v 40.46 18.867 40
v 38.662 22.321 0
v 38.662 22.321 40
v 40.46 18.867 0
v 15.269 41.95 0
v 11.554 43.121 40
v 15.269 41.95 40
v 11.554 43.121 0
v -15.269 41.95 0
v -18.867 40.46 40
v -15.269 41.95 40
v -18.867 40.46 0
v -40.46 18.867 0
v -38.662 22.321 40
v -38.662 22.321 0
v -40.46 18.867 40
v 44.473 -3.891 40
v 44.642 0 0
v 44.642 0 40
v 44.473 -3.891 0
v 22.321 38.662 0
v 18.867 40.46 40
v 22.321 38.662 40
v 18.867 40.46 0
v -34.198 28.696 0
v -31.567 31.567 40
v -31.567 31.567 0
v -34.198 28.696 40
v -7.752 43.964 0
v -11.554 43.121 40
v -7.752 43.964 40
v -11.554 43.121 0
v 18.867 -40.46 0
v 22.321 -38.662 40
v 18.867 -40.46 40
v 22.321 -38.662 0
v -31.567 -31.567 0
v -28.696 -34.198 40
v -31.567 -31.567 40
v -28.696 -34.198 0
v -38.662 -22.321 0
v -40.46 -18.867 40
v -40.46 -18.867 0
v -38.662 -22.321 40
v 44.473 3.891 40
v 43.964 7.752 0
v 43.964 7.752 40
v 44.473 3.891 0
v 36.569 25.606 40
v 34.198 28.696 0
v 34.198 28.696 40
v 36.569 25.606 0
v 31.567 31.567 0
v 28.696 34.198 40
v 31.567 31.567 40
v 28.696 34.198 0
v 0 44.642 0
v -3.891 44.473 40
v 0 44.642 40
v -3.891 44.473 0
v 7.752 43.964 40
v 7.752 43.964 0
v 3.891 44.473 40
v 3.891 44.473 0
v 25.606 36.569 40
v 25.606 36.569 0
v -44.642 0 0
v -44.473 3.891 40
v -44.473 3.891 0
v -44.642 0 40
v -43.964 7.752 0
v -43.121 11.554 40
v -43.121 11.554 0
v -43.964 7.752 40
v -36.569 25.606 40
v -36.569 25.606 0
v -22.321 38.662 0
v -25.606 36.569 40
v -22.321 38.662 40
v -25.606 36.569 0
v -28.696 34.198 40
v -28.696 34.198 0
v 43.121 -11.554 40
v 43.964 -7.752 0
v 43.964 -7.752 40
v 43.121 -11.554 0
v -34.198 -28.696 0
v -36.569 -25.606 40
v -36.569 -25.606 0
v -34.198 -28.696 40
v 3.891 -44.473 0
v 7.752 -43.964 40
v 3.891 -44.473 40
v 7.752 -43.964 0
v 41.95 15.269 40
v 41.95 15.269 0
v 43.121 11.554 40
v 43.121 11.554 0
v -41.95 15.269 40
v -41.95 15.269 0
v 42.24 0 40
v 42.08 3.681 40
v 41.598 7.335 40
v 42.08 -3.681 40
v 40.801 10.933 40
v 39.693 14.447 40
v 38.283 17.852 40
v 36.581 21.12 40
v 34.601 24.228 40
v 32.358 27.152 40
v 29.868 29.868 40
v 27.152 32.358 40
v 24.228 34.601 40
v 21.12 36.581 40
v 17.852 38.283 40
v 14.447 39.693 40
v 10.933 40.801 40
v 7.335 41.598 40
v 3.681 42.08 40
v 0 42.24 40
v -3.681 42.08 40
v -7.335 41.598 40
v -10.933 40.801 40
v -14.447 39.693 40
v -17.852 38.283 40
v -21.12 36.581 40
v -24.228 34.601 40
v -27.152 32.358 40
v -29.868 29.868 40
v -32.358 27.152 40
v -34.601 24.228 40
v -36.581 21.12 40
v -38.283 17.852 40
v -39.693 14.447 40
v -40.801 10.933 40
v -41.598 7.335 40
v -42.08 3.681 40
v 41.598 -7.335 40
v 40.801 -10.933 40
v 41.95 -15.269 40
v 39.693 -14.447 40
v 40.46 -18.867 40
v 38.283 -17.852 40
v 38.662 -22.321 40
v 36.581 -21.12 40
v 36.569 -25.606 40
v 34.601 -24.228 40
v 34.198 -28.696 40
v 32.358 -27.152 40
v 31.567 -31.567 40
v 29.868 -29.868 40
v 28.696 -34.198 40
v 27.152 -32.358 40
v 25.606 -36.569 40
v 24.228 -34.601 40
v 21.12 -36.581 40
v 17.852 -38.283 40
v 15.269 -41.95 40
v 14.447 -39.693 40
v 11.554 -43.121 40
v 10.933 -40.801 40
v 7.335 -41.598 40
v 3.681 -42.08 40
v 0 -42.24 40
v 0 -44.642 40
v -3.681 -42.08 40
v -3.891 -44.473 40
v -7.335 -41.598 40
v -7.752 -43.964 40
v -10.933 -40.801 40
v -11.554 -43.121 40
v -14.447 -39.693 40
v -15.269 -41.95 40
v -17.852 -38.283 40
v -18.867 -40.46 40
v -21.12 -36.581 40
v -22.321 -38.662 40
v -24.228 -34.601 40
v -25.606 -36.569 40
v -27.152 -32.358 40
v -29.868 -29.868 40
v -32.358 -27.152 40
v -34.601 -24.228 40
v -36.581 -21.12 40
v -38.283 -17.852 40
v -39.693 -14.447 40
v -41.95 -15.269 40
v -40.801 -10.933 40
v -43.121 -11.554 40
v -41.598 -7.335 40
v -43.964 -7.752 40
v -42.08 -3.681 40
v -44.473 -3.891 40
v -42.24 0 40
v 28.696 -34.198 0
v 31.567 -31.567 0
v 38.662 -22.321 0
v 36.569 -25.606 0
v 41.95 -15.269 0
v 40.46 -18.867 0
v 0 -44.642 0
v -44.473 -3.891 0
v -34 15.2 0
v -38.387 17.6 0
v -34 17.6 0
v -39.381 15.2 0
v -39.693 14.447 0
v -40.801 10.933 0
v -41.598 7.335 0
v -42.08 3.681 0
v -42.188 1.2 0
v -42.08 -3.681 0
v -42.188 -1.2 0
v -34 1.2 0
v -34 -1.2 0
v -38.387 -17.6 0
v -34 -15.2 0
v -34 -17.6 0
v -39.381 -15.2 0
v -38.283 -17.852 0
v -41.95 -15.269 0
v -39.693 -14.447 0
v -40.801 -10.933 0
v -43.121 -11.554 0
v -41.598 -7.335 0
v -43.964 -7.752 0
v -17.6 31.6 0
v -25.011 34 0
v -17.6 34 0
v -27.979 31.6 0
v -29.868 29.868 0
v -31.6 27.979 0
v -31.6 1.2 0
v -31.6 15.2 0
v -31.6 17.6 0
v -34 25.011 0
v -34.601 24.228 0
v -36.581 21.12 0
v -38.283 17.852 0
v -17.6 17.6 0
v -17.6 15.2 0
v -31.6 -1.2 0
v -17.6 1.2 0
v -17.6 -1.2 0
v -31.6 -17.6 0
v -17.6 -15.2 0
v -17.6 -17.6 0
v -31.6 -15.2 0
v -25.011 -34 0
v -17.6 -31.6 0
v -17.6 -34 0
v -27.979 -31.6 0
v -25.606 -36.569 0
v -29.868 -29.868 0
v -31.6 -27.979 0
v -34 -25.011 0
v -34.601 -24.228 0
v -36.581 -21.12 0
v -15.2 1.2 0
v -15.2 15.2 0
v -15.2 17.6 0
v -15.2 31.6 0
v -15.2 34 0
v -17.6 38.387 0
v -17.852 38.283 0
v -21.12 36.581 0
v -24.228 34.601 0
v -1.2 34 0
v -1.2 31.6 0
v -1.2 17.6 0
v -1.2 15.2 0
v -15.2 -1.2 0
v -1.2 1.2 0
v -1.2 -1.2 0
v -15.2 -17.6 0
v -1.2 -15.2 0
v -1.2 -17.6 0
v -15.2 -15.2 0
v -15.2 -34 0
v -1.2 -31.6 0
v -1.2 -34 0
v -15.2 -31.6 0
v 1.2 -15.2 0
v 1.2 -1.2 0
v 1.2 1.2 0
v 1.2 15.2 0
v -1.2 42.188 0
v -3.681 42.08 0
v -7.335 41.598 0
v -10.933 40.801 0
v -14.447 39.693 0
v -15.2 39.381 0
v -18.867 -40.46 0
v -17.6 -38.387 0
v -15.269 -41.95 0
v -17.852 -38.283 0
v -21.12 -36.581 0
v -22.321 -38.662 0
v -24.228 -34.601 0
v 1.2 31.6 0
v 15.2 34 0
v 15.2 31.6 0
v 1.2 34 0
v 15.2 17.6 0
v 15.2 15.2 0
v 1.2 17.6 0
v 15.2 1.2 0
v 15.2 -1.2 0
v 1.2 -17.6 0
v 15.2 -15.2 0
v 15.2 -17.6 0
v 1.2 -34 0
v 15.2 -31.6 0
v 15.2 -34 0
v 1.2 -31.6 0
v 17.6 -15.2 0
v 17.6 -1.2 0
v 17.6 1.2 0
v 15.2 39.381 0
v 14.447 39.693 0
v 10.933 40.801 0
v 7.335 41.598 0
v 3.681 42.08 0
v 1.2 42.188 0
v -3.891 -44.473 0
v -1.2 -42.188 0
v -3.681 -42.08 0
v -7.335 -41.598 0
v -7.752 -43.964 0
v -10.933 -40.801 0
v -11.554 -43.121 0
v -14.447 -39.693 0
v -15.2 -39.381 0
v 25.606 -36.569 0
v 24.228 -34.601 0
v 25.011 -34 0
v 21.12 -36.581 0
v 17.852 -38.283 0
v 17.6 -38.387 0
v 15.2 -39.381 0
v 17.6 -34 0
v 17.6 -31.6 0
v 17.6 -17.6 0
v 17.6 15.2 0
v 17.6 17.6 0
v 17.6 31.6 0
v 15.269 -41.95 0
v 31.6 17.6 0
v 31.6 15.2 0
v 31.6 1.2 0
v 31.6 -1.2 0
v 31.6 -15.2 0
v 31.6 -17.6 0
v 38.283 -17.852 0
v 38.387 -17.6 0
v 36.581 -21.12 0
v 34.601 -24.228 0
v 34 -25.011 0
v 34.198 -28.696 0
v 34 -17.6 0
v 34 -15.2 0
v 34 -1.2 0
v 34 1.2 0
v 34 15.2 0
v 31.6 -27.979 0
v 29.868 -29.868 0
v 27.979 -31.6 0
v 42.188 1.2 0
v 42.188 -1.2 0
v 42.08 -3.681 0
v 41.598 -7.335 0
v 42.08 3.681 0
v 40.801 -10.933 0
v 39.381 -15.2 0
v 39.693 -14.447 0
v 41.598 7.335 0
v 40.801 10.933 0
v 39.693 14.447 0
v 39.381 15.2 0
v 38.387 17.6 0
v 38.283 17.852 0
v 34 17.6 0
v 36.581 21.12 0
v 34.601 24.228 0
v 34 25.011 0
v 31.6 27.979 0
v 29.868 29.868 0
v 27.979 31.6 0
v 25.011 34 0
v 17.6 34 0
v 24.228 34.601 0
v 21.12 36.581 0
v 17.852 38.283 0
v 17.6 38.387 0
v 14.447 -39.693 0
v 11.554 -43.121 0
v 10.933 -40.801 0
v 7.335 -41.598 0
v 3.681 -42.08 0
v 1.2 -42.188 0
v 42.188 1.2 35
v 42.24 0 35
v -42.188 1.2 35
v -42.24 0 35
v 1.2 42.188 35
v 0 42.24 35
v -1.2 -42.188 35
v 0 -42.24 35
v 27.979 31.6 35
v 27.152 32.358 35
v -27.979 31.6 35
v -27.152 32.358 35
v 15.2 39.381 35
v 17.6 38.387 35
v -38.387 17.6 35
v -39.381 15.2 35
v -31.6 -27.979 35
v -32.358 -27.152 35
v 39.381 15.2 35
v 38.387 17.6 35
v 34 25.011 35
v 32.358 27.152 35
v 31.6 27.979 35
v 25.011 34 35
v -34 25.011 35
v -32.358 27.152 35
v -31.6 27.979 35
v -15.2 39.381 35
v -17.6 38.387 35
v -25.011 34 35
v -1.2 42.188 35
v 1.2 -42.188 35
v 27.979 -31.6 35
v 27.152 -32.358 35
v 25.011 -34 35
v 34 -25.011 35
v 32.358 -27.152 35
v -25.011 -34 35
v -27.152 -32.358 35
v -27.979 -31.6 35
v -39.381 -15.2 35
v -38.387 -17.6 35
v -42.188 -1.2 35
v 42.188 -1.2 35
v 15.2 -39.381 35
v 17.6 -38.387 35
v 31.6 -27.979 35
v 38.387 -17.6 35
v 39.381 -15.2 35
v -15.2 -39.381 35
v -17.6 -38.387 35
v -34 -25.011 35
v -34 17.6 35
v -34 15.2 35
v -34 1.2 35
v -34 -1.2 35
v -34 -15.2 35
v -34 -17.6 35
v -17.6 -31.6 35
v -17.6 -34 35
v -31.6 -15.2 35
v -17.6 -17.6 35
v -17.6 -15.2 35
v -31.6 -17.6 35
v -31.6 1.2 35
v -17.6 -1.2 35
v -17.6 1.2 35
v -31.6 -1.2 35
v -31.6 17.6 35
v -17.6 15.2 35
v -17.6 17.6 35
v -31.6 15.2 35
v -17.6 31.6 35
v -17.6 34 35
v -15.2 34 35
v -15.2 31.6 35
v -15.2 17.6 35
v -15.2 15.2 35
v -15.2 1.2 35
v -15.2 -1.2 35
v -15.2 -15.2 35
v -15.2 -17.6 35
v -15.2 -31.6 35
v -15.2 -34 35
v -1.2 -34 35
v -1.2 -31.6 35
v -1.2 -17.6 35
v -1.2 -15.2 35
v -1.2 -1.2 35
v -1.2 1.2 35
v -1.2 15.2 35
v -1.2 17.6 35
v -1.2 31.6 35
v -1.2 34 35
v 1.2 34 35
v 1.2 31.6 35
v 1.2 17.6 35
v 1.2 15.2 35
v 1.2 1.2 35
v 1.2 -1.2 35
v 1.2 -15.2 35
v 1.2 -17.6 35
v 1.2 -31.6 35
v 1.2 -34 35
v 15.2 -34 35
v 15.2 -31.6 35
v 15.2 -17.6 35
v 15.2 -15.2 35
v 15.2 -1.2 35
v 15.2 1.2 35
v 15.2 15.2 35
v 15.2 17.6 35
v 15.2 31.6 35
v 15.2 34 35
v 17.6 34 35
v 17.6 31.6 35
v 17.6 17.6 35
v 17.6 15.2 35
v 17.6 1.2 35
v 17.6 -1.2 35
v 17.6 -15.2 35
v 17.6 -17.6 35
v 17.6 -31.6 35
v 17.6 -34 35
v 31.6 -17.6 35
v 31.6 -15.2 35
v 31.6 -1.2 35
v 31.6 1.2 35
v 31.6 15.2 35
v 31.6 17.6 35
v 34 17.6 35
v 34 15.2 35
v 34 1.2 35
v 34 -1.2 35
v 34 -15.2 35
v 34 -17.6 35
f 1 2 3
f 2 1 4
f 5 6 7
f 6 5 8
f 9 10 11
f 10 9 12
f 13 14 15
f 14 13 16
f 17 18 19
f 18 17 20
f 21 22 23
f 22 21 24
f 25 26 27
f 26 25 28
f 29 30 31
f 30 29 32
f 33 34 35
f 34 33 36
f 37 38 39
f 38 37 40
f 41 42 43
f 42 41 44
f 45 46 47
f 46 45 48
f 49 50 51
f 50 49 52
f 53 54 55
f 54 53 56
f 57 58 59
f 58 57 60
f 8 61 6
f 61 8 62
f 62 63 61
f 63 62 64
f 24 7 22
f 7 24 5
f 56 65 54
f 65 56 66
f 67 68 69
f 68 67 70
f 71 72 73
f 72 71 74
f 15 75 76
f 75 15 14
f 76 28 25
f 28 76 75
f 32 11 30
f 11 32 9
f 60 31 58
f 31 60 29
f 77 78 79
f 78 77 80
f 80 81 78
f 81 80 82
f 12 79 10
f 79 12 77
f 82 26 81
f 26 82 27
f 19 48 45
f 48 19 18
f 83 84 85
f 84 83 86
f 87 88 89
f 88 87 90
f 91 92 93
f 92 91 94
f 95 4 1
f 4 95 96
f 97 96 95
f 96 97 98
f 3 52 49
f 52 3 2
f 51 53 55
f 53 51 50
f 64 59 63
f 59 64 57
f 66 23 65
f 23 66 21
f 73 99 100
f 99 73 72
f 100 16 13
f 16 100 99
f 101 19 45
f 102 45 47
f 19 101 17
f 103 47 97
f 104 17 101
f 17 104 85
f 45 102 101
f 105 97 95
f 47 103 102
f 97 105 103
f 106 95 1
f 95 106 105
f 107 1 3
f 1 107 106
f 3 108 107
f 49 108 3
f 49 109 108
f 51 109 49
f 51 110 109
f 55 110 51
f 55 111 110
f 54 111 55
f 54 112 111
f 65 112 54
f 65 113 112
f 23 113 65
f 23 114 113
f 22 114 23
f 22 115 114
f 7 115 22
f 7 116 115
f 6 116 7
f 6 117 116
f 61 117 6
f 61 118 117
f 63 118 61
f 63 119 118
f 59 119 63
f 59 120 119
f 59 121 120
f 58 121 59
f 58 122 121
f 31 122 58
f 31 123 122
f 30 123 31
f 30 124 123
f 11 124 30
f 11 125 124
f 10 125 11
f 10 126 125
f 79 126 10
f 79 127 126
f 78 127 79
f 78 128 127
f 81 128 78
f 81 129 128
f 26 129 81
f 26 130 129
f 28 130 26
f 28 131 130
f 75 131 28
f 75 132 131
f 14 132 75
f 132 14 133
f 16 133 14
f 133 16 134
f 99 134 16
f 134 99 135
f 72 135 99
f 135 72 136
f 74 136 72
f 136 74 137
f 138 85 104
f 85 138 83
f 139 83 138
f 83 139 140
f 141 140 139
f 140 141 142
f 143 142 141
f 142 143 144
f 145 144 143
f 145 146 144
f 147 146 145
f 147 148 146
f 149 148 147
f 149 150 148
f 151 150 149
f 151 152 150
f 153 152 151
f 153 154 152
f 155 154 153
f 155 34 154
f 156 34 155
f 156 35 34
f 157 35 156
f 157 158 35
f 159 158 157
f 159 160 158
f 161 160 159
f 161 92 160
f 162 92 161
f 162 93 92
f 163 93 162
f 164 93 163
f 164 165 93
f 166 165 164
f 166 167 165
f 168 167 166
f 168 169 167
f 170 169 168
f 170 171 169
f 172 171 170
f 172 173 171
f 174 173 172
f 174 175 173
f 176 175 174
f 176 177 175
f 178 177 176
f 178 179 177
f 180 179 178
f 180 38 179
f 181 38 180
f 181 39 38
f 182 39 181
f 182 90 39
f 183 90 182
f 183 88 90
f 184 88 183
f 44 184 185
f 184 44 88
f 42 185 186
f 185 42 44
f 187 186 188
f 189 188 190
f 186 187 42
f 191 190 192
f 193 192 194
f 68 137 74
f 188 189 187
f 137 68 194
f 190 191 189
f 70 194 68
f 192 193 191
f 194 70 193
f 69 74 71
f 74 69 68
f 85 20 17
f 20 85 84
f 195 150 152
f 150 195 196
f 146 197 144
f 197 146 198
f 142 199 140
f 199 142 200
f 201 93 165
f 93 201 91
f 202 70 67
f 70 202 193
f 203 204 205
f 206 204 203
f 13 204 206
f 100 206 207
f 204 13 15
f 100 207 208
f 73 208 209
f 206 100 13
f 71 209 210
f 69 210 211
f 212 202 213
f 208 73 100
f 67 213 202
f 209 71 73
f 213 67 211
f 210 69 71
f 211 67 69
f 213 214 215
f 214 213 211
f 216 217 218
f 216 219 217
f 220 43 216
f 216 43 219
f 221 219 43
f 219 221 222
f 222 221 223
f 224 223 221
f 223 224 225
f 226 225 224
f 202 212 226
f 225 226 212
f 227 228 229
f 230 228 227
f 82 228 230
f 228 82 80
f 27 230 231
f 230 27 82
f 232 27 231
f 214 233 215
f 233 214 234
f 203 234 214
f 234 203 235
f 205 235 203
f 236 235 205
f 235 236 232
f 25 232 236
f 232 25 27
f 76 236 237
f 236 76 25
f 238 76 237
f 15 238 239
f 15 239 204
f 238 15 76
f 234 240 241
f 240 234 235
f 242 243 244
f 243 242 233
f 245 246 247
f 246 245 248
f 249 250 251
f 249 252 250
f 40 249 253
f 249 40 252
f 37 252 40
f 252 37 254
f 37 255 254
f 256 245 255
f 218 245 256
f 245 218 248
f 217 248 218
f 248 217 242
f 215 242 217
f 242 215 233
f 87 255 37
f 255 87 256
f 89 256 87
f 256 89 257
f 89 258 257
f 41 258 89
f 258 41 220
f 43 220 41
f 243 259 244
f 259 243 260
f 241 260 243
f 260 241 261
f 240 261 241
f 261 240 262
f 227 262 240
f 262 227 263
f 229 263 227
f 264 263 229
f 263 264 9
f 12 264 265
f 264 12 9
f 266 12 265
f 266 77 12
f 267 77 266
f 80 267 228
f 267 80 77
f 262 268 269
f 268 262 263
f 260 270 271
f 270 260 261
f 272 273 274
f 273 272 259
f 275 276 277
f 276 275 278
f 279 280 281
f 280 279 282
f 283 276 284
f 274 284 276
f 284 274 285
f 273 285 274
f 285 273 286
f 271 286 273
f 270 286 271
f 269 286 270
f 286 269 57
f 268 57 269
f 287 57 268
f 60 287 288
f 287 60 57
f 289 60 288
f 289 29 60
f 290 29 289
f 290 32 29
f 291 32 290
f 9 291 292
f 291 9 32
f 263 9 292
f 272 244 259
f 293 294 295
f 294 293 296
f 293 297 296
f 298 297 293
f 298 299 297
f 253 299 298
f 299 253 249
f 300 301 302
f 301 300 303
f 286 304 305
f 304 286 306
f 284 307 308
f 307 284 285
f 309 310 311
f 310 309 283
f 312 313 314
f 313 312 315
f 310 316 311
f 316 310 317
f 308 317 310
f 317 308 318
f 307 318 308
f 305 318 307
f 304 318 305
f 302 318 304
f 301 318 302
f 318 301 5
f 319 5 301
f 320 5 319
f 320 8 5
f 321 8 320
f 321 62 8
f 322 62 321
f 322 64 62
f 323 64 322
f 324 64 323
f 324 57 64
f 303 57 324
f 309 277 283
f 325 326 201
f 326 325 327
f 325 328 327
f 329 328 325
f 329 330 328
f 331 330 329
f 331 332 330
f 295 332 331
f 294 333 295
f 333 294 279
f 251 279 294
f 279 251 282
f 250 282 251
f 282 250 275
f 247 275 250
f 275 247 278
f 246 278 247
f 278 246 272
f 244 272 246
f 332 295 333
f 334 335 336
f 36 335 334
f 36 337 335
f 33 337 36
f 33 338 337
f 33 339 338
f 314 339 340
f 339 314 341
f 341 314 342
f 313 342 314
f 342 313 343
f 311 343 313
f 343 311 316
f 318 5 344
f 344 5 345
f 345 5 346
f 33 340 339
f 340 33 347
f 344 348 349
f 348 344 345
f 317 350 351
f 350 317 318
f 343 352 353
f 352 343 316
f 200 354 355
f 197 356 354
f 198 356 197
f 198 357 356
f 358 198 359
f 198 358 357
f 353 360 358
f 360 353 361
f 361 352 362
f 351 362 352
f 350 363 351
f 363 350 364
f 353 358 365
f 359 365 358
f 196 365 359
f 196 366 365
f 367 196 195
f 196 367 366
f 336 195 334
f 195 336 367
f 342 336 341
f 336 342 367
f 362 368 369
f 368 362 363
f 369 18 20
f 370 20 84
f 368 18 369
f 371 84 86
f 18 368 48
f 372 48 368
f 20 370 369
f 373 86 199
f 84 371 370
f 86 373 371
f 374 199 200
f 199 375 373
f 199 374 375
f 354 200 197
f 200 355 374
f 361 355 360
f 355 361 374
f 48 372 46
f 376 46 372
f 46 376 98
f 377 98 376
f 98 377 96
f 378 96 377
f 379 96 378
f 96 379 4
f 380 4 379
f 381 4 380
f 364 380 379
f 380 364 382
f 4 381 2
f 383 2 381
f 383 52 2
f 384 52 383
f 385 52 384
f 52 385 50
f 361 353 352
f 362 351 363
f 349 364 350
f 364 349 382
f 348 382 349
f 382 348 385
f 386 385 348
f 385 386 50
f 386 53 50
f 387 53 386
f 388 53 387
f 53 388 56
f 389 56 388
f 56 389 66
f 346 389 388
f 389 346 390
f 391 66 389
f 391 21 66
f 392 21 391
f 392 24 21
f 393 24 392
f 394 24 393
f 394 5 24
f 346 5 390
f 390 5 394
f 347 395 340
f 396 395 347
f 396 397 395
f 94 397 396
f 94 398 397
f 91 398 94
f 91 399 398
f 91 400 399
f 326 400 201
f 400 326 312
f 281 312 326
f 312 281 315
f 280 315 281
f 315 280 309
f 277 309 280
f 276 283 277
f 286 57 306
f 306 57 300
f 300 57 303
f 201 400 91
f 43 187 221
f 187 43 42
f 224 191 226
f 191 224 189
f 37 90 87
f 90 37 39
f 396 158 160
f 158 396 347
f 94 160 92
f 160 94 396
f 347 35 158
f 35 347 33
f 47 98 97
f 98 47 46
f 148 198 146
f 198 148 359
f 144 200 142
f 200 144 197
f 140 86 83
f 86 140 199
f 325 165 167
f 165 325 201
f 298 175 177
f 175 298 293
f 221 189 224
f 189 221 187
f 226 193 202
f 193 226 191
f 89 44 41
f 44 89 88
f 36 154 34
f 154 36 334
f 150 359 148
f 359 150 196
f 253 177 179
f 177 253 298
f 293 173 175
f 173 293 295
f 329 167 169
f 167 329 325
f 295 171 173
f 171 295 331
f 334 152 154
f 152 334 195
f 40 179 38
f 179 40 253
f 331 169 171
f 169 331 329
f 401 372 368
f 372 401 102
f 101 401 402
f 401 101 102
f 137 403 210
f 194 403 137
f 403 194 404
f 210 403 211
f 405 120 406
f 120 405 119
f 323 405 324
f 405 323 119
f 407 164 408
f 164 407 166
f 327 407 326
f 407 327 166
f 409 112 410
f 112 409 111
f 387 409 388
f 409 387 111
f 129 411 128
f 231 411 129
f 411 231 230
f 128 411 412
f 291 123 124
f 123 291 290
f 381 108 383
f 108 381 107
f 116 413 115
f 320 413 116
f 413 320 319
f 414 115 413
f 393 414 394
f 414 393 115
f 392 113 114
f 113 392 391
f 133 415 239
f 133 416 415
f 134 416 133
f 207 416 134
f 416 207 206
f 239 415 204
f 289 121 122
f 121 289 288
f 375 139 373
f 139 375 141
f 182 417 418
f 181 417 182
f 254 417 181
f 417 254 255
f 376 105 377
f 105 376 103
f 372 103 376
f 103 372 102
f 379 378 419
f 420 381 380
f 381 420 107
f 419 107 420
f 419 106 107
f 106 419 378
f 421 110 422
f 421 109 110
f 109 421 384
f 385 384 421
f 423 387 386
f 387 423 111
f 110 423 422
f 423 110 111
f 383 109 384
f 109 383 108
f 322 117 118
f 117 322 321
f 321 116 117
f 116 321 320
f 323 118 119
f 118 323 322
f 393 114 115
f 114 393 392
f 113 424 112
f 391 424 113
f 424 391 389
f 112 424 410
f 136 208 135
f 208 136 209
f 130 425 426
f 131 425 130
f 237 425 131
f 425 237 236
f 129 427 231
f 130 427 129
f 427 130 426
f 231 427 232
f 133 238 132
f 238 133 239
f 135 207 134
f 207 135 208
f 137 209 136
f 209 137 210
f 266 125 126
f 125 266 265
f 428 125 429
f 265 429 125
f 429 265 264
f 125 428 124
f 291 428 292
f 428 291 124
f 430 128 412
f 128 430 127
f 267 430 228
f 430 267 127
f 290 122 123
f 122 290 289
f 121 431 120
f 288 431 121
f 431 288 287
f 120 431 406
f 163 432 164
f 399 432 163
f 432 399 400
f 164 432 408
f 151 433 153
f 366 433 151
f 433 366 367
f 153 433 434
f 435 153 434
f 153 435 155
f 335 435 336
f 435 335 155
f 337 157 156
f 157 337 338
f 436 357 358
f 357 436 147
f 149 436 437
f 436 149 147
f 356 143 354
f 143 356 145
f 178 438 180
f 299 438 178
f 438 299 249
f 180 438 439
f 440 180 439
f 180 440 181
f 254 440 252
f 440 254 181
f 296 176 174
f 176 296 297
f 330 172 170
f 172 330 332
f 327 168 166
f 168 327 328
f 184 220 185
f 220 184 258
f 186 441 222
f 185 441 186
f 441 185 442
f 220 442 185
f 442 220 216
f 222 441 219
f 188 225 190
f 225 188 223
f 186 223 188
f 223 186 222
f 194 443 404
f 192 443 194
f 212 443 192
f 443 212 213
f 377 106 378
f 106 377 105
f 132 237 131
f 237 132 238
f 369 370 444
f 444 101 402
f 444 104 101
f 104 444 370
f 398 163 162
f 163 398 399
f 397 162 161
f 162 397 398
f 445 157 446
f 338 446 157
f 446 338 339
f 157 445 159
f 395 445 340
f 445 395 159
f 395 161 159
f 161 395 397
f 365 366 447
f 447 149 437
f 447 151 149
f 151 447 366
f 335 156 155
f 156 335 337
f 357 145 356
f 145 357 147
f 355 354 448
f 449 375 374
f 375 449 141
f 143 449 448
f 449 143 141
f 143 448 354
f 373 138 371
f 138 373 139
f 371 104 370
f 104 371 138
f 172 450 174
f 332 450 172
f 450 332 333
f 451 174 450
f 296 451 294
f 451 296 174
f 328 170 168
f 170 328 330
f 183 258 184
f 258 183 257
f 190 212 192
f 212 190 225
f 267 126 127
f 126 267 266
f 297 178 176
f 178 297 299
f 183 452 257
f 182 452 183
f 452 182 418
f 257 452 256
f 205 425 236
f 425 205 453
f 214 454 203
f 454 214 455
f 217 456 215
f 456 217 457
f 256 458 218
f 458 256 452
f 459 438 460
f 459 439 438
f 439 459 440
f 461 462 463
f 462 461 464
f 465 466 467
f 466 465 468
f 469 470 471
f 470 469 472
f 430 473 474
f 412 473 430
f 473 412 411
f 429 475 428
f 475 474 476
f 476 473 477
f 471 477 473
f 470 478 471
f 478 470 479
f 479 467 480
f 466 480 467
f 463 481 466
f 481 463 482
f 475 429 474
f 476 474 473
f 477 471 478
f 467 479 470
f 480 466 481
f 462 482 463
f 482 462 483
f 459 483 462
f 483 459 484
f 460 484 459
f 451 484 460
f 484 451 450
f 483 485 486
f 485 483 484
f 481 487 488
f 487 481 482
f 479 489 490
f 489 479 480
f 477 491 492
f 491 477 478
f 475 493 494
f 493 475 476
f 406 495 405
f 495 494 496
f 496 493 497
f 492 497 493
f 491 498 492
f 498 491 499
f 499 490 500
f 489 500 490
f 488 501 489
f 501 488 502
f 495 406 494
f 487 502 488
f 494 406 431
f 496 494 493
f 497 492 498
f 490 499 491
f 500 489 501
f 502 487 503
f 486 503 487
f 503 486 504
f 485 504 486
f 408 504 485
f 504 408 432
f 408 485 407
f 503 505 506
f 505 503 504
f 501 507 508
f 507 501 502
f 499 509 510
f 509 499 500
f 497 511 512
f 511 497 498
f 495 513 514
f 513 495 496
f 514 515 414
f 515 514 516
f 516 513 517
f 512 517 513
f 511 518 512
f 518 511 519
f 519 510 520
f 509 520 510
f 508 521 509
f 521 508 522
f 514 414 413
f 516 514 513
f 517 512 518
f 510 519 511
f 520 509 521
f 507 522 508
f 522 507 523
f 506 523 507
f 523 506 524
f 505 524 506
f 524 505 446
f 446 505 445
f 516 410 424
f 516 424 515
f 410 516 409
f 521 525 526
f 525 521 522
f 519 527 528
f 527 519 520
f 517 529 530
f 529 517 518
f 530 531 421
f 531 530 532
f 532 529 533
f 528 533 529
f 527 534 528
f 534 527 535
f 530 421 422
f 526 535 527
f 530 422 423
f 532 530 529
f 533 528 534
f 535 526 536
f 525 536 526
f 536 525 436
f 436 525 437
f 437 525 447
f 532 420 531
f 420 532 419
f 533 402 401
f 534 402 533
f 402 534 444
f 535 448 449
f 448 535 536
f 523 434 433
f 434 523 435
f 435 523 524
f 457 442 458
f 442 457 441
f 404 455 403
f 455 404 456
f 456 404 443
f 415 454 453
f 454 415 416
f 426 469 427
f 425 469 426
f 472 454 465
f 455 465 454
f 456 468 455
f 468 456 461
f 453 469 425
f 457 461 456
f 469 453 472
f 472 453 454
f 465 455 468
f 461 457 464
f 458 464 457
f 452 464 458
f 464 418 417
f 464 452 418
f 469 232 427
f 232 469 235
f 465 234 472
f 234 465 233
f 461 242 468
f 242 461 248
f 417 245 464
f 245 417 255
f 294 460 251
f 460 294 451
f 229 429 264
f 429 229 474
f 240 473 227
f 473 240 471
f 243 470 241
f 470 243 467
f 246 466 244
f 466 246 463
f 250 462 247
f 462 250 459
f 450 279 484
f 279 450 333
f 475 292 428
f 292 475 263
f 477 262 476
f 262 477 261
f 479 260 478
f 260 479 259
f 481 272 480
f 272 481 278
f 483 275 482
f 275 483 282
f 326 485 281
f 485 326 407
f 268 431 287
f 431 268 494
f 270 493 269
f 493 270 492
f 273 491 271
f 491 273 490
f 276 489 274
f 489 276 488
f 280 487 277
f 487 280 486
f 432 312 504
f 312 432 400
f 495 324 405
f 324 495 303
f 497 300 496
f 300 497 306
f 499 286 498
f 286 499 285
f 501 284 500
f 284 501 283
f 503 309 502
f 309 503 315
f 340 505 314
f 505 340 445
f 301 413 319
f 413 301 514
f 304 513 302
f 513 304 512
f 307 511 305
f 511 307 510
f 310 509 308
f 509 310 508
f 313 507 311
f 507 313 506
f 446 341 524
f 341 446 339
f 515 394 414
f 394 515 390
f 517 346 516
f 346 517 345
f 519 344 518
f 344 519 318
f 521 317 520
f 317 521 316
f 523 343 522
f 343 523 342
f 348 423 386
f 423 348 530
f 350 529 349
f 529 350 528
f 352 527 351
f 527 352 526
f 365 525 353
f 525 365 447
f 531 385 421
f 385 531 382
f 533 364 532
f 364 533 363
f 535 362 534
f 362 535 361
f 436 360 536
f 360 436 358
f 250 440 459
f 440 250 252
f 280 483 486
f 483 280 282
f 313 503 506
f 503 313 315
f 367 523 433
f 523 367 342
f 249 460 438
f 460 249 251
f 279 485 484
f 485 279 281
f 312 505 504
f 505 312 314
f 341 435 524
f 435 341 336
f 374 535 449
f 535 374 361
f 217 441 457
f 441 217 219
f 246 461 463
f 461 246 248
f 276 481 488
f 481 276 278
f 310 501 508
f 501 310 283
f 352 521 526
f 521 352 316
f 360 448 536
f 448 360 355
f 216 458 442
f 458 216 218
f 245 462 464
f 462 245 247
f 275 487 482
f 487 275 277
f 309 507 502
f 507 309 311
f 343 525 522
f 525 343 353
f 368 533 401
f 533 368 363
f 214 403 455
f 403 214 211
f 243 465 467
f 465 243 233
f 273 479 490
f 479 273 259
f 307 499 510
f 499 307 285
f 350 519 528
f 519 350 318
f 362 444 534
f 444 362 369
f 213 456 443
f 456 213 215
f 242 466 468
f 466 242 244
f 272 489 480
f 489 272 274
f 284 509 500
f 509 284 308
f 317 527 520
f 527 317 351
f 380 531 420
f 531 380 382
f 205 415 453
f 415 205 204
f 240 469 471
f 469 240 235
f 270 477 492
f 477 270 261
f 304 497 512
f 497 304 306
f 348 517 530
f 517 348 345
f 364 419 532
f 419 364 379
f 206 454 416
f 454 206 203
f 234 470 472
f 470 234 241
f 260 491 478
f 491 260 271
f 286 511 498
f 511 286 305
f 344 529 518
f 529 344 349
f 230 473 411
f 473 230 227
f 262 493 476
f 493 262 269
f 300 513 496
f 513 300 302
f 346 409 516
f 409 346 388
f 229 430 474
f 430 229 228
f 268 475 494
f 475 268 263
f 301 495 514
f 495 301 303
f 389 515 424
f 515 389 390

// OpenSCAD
// file: grid.scad
module Grid(size=[100, 100, 10], pitch_x=11.2, pitch_y=11.2, thickness_x=1.2, thickness_y=1.2) {
    xs = size.x / pitch_x;
    ys = size.y / pitch_y;

    translate([-pitch_x / 2 + thickness_x, 0, 0]) {
        for (i=[1:xs]) {
            translate([
                i * pitch_x,
                0,
                0
            ]) cube([thickness_x, size.y, size.z]);
        }
    }

    translate([0, -pitch_y / 2 + thickness_y, 0]) {
        for (i=[1:ys]) {
            translate([
                0,
                i * pitch_y,
                0
            ]) cube([size.x, thickness_y, size.z]);
        }   
    }
}

module CircularGrid(radius, d_z, pitch_x=11.2, pitch_y=11.2, thickness_x=1.2, thickness_y=1.2, fn=72) {
    module cylinder_outer(height,radius,fn){
        fudge = 1/cos(180/fn);
        cylinder(h=height,r=radius*fudge,$fn=fn);
    }

    intersection() {
        cylinder_outer(d_z, radius, fn);
        translate([-radius, -radius, 0]) Grid([radius * 2, radius * 2, d_z], pitch_x, pitch_y, thickness_x, thickness_y);
    }
}

CircularGrid(100, 10);
// main file
use <grid.scad>

min_thickness = 1.2;
2min_thickness = 2 * min_thickness;
upper_tube_id=90;
baffle_diameter=upper_tube_id - 0.8;
baffle_r=baffle_diameter/2;
baffle_z=35;
baffle_tube_z=40;
grid_size=14;

module cylinder_outer(height,radius,fn=72){
   fudge = 1/cos(180/fn);
   cylinder(h=height,r=radius*fudge,$fn=fn);}

difference() {
    cylinder_outer(baffle_tube_z, baffle_r);
    cylinder_outer(baffle_tube_z, baffle_r - 2min_thickness);
}

CircularGrid(baffle_r, baffle_z, pitch_x=grid_size + 2min_thickness, pitch_y=grid_size + 2min_thickness, thickness_x=2min_thickness, thickness_y=2min_thickness);
